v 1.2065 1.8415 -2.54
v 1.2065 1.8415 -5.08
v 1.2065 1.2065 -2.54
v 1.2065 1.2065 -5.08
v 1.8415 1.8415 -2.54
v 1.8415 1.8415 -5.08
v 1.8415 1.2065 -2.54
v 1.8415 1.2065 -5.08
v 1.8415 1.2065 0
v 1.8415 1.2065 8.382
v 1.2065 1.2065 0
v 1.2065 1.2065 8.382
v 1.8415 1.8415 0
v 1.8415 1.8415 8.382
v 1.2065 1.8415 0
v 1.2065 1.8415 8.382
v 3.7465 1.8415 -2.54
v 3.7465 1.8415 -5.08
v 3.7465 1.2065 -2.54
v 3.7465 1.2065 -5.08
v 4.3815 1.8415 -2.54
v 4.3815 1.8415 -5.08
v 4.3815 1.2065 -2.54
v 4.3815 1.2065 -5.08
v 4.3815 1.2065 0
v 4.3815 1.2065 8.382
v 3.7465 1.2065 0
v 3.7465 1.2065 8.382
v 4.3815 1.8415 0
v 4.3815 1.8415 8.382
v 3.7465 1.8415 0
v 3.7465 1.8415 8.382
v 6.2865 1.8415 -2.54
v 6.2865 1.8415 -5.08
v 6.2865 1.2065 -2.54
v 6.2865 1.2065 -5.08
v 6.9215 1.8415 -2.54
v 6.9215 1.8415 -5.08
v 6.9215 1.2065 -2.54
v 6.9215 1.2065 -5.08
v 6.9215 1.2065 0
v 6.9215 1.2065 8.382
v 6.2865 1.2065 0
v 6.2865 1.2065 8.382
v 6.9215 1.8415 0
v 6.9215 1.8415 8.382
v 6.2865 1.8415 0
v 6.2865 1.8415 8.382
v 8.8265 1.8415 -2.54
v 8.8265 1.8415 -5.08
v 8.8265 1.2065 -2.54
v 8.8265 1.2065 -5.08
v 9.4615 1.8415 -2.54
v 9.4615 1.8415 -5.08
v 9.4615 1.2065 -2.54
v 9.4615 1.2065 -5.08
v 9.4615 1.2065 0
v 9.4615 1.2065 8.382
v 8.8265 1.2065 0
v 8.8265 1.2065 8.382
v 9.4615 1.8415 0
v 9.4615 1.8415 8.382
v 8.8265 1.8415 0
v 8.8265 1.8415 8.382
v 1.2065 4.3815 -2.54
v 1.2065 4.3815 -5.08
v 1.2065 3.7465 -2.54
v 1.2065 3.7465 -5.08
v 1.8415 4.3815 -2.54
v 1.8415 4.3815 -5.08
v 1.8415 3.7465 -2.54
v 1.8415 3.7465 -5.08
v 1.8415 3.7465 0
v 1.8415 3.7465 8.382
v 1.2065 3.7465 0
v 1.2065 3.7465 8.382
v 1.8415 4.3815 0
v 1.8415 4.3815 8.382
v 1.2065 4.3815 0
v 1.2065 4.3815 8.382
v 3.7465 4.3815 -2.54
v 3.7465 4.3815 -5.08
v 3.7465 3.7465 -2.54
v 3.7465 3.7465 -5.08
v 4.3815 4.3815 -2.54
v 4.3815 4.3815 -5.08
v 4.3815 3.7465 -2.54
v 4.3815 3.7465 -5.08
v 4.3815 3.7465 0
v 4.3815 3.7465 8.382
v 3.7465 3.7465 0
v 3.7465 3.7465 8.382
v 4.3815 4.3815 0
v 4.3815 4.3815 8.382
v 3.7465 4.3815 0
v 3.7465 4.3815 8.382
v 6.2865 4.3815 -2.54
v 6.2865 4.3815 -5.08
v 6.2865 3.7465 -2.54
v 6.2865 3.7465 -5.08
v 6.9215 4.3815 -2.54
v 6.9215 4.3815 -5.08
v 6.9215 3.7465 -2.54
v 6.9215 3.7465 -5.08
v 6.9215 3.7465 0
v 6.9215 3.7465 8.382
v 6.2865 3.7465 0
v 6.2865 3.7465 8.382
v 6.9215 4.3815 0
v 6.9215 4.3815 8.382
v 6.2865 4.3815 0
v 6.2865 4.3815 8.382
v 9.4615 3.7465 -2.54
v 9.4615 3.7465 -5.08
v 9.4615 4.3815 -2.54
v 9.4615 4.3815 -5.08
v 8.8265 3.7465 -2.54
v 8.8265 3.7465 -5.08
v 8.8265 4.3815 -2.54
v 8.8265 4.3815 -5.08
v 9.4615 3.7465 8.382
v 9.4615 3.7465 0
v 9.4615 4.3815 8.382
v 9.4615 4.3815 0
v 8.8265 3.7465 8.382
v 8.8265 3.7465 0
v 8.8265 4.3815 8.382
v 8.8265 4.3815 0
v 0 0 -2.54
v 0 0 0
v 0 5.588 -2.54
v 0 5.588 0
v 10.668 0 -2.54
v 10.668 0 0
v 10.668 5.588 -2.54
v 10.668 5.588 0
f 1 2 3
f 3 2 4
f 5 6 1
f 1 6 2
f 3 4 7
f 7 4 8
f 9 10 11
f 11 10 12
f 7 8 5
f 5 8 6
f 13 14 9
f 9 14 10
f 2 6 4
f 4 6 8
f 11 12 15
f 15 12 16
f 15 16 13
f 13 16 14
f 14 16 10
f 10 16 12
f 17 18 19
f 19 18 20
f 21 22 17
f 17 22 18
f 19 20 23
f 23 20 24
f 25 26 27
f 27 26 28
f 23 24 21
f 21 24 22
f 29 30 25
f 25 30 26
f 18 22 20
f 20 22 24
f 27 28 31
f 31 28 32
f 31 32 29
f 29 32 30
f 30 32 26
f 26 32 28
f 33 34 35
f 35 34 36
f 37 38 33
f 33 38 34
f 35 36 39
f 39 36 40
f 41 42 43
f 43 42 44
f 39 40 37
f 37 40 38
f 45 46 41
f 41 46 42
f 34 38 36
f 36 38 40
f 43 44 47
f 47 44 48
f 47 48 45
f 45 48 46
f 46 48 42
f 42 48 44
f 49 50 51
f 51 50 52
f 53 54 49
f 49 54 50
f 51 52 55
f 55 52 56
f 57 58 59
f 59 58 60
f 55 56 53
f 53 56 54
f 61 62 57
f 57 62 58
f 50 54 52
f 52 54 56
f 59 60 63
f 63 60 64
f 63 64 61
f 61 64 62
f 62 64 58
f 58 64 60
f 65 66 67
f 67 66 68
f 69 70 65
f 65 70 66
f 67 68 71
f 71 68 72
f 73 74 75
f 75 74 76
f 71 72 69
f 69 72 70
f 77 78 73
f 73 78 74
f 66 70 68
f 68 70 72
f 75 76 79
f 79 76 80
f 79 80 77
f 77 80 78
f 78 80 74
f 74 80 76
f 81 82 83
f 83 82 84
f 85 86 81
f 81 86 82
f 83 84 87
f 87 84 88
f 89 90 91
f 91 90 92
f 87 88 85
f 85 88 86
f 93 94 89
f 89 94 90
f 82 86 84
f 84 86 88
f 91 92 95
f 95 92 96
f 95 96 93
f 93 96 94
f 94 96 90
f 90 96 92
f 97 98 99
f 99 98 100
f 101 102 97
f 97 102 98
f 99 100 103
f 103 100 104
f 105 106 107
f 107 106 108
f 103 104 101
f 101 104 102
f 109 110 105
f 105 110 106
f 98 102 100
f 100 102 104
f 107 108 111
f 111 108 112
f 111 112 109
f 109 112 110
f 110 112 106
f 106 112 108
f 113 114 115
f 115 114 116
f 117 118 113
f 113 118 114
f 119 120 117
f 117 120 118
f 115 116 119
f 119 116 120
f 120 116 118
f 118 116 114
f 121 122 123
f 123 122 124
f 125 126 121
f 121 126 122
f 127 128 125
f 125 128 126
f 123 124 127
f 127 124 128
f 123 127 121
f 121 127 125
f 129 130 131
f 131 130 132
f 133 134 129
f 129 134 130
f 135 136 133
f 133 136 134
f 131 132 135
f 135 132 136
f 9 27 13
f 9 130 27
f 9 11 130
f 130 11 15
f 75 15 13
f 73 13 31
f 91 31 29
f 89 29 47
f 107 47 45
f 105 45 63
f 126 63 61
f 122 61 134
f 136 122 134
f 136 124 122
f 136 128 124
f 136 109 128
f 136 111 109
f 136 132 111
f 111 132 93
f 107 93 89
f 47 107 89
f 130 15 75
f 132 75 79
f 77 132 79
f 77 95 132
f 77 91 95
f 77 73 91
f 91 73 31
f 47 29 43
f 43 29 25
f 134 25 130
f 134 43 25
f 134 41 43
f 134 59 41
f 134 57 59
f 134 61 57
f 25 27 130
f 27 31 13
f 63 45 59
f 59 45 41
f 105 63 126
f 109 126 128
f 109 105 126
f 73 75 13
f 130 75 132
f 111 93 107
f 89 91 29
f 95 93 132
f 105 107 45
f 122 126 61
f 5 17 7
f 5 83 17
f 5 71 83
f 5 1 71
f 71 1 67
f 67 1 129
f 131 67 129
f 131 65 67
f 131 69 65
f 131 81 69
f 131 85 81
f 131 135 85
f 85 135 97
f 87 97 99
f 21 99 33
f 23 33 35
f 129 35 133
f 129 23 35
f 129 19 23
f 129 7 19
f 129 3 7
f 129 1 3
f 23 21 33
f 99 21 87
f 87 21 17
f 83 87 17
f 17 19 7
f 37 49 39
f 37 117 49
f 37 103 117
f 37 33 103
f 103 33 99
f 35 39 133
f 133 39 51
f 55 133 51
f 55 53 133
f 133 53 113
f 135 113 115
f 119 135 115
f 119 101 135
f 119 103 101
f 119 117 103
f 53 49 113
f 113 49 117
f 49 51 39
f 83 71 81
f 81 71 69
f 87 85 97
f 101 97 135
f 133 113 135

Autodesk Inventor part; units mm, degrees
ref_plane "YZ Plane" through (0, 0, 0) normal (1, 0, 0) x (0, 1, 0)
ref_plane "XZ Plane" through (0, 0, 0) normal (0, 1, 0) x (-1, 0, 0)
ref_plane "XY Plane" through (0, 0, 0) normal (0, 0, 1) x (1, 0, 0)
sketch "Sketch1" plane through (0, 0, 0) normal (0, 0, 1) x (1, 0, 0)
  line L0 (0, 5.588) -> (10.668, 5.588)
  line L1 (10.668, 5.588) -> (10.668, 0)
  line L2 (10.668, 0) -> (0, 0)
  line L3 (0, 0) -> (0, 5.588)
  line L4 (9.4615, 4.3815) -> (8.8265, 4.3815)
  line L5 (9.4615, 3.7465) -> (9.4615, 4.3815)
  line L6 (8.8265, 3.7465) -> (9.4615, 3.7465)
  line L7 (8.8265, 4.3815) -> (8.8265, 3.7465)
extrude "Extrusion1" add sketch "Sketch1" against normal blind 2.54
extrude "Extrusion2" add sketch "Sketch1" along normal blind 8.382 contours L5 L6 L7 L4
extrude "Extrusion3" add sketch "Sketch1" against normal blind 5.08 contours L5 L6 L7 L4
pattern_linear "Rectangular Pattern1" count 4 spacing 2.54 along (-1, 0, 0) count 2 spacing 2.54 along (0, -1, 0) of "Extrusion3", "Extrusion2"
properties part number "J23"
